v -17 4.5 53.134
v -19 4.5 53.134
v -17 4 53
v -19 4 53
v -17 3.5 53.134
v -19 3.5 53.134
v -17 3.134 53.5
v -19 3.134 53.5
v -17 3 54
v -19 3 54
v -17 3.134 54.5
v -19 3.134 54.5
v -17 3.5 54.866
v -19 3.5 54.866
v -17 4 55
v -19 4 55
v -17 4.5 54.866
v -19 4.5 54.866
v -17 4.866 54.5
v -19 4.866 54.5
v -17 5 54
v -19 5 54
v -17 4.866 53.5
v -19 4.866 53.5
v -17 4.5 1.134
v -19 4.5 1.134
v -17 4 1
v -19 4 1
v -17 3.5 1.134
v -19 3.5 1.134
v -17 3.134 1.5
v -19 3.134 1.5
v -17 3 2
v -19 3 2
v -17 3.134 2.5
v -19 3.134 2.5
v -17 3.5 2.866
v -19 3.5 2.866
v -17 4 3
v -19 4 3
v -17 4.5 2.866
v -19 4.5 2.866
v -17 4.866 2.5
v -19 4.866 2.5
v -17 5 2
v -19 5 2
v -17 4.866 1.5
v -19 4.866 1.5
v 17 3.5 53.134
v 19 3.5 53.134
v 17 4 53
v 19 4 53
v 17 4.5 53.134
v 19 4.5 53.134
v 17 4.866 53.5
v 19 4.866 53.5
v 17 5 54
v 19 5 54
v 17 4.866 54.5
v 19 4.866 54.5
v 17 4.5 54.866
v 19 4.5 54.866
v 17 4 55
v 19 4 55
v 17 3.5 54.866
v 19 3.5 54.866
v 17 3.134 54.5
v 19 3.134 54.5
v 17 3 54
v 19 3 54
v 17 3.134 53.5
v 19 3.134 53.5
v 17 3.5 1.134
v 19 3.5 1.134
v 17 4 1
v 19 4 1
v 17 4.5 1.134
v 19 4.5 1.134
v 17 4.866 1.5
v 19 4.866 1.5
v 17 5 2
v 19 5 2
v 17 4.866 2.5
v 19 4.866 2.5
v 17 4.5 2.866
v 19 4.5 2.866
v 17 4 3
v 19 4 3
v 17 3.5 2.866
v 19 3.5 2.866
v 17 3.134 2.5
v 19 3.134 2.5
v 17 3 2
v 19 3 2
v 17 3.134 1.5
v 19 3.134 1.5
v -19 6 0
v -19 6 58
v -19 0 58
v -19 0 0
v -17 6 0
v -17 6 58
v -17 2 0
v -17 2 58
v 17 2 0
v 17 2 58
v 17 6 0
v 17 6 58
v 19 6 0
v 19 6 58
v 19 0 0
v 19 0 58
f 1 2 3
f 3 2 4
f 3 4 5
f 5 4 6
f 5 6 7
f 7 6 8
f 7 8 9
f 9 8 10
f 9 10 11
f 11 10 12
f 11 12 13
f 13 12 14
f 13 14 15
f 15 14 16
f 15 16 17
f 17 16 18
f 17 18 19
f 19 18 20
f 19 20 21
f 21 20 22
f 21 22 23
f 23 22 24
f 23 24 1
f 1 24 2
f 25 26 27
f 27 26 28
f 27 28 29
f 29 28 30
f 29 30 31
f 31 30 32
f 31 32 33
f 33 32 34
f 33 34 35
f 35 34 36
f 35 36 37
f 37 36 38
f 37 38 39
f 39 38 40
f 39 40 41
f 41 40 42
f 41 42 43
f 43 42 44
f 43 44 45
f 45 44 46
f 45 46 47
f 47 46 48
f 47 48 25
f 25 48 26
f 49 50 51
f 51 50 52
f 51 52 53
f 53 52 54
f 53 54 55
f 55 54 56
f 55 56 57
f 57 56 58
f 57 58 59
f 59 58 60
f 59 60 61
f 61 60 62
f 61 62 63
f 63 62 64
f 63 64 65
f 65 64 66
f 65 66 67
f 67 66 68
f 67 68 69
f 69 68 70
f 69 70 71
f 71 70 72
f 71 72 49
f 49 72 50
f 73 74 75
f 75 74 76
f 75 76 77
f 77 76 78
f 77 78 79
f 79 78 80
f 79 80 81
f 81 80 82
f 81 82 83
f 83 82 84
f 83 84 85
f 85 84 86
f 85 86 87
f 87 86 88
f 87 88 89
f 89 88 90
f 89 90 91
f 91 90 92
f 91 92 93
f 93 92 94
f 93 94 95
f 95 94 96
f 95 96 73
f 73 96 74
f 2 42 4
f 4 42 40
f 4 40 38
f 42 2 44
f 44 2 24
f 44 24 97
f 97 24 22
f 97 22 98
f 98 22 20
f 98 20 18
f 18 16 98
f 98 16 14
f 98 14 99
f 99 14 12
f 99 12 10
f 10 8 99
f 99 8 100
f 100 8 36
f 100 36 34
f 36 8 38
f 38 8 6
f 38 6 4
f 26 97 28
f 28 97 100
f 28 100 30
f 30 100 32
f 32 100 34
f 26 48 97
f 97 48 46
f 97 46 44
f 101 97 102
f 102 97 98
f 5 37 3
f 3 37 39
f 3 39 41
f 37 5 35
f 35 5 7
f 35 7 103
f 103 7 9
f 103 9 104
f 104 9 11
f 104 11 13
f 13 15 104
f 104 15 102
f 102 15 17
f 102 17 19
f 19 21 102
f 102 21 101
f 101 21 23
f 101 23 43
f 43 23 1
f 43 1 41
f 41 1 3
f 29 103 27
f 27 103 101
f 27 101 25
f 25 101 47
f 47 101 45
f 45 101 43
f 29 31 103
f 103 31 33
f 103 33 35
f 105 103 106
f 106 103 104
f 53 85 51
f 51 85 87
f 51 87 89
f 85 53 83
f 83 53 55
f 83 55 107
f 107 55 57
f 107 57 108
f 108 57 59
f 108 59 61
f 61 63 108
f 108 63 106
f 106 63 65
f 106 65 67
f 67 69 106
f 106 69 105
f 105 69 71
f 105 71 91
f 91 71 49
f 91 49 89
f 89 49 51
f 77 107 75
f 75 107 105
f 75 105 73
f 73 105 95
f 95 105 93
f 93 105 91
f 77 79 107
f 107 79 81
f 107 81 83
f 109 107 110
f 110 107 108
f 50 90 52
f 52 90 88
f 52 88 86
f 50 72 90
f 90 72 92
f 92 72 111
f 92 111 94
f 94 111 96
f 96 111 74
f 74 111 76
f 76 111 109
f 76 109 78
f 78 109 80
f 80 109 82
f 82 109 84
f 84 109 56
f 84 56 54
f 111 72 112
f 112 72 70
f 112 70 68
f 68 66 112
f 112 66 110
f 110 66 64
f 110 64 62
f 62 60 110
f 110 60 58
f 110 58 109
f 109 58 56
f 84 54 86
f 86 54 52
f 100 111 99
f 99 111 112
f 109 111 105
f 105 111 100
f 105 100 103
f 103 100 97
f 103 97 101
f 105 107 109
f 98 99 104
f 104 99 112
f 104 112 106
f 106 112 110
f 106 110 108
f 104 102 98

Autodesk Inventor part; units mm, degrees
ref_plane "YZ Plane" through (0, 0, 0) normal (1, 0, 0) x (0, 1, 0)
ref_plane "XZ Plane" through (0, 0, 0) normal (0, 1, 0) x (-1, 0, 0)
ref_plane "XY Plane" through (0, 0, 0) normal (0, 0, 1) x (1, 0, 0)
sketch "草图1" plane through (0, 0, 0) normal (0, 0, 1) x (1, 0, 0)
  line L0 (0, -1.2) -> (0, 7.2) construction
  line L1 (-26.6, 0) -> (26.6, 0) construction
  line L2 (0, 0) -> (-19, 0)
  line L3 (0, 2) -> (-17, 2)
  line L4 (-19, 0) -> (-19, 6)
  line L5 (-19, 6) -> (-17, 6)
  line L6 (-17, 6) -> (-17, 2)
  line L7 (0, 0) -> (19, 0)
  line L8 (0, 2) -> (17, 2)
  line L9 (19, 0) -> (19, 6)
  line L10 (19, 6) -> (17, 6)
  line L11 (17, 6) -> (17, 2)
  dimension "d0" = 19
  dimension "d1" = 17
  dimension "d2" = 2
  dimension "d3" = 6
extrude "拉伸1" add sketch "草图1" along normal blind 58
sketch "草图2" plane through (19, 0, 0) normal (1, 0, 0) x (0, 0, -1)
  line L0 (0, 6) -> (0, 0) construction
  line L1 (0, 6) -> (-58, 6) construction
  line L2 (-58, 0) -> (-58, 6) construction
  line L3 (0, 0) -> (-58, 0) construction
  line L4 (0, 2) -> (-58, 2) construction
  line L5 (0, 6) -> (-58, 6) construction
  line L6 (-56, 6) -> (-56, 0) construction
  line L7 (0, 0) -> (-58, 0) construction
  line L8 (-58, 0) -> (-58, 6) construction
  line L9 (-58, 4) -> (0, 4) construction
  circle A0 centre (-54, 4) radius 1
  circle A1 centre (-2, 4) radius 1
  dimension "d6" = 2
  dimension "d7" = 4
  dimension "d8" = 2
  dimension "d9" = 2
  dimension "d10" = 2
  dimension "d11" = 2
extrude "拉伸2" cut sketch "草图2" against normal blind 2
mirror "镜像1" about plane through (0, 0, 0) normal (1, 0, 0) of "拉伸2"
properties part number "CaseBottom"
